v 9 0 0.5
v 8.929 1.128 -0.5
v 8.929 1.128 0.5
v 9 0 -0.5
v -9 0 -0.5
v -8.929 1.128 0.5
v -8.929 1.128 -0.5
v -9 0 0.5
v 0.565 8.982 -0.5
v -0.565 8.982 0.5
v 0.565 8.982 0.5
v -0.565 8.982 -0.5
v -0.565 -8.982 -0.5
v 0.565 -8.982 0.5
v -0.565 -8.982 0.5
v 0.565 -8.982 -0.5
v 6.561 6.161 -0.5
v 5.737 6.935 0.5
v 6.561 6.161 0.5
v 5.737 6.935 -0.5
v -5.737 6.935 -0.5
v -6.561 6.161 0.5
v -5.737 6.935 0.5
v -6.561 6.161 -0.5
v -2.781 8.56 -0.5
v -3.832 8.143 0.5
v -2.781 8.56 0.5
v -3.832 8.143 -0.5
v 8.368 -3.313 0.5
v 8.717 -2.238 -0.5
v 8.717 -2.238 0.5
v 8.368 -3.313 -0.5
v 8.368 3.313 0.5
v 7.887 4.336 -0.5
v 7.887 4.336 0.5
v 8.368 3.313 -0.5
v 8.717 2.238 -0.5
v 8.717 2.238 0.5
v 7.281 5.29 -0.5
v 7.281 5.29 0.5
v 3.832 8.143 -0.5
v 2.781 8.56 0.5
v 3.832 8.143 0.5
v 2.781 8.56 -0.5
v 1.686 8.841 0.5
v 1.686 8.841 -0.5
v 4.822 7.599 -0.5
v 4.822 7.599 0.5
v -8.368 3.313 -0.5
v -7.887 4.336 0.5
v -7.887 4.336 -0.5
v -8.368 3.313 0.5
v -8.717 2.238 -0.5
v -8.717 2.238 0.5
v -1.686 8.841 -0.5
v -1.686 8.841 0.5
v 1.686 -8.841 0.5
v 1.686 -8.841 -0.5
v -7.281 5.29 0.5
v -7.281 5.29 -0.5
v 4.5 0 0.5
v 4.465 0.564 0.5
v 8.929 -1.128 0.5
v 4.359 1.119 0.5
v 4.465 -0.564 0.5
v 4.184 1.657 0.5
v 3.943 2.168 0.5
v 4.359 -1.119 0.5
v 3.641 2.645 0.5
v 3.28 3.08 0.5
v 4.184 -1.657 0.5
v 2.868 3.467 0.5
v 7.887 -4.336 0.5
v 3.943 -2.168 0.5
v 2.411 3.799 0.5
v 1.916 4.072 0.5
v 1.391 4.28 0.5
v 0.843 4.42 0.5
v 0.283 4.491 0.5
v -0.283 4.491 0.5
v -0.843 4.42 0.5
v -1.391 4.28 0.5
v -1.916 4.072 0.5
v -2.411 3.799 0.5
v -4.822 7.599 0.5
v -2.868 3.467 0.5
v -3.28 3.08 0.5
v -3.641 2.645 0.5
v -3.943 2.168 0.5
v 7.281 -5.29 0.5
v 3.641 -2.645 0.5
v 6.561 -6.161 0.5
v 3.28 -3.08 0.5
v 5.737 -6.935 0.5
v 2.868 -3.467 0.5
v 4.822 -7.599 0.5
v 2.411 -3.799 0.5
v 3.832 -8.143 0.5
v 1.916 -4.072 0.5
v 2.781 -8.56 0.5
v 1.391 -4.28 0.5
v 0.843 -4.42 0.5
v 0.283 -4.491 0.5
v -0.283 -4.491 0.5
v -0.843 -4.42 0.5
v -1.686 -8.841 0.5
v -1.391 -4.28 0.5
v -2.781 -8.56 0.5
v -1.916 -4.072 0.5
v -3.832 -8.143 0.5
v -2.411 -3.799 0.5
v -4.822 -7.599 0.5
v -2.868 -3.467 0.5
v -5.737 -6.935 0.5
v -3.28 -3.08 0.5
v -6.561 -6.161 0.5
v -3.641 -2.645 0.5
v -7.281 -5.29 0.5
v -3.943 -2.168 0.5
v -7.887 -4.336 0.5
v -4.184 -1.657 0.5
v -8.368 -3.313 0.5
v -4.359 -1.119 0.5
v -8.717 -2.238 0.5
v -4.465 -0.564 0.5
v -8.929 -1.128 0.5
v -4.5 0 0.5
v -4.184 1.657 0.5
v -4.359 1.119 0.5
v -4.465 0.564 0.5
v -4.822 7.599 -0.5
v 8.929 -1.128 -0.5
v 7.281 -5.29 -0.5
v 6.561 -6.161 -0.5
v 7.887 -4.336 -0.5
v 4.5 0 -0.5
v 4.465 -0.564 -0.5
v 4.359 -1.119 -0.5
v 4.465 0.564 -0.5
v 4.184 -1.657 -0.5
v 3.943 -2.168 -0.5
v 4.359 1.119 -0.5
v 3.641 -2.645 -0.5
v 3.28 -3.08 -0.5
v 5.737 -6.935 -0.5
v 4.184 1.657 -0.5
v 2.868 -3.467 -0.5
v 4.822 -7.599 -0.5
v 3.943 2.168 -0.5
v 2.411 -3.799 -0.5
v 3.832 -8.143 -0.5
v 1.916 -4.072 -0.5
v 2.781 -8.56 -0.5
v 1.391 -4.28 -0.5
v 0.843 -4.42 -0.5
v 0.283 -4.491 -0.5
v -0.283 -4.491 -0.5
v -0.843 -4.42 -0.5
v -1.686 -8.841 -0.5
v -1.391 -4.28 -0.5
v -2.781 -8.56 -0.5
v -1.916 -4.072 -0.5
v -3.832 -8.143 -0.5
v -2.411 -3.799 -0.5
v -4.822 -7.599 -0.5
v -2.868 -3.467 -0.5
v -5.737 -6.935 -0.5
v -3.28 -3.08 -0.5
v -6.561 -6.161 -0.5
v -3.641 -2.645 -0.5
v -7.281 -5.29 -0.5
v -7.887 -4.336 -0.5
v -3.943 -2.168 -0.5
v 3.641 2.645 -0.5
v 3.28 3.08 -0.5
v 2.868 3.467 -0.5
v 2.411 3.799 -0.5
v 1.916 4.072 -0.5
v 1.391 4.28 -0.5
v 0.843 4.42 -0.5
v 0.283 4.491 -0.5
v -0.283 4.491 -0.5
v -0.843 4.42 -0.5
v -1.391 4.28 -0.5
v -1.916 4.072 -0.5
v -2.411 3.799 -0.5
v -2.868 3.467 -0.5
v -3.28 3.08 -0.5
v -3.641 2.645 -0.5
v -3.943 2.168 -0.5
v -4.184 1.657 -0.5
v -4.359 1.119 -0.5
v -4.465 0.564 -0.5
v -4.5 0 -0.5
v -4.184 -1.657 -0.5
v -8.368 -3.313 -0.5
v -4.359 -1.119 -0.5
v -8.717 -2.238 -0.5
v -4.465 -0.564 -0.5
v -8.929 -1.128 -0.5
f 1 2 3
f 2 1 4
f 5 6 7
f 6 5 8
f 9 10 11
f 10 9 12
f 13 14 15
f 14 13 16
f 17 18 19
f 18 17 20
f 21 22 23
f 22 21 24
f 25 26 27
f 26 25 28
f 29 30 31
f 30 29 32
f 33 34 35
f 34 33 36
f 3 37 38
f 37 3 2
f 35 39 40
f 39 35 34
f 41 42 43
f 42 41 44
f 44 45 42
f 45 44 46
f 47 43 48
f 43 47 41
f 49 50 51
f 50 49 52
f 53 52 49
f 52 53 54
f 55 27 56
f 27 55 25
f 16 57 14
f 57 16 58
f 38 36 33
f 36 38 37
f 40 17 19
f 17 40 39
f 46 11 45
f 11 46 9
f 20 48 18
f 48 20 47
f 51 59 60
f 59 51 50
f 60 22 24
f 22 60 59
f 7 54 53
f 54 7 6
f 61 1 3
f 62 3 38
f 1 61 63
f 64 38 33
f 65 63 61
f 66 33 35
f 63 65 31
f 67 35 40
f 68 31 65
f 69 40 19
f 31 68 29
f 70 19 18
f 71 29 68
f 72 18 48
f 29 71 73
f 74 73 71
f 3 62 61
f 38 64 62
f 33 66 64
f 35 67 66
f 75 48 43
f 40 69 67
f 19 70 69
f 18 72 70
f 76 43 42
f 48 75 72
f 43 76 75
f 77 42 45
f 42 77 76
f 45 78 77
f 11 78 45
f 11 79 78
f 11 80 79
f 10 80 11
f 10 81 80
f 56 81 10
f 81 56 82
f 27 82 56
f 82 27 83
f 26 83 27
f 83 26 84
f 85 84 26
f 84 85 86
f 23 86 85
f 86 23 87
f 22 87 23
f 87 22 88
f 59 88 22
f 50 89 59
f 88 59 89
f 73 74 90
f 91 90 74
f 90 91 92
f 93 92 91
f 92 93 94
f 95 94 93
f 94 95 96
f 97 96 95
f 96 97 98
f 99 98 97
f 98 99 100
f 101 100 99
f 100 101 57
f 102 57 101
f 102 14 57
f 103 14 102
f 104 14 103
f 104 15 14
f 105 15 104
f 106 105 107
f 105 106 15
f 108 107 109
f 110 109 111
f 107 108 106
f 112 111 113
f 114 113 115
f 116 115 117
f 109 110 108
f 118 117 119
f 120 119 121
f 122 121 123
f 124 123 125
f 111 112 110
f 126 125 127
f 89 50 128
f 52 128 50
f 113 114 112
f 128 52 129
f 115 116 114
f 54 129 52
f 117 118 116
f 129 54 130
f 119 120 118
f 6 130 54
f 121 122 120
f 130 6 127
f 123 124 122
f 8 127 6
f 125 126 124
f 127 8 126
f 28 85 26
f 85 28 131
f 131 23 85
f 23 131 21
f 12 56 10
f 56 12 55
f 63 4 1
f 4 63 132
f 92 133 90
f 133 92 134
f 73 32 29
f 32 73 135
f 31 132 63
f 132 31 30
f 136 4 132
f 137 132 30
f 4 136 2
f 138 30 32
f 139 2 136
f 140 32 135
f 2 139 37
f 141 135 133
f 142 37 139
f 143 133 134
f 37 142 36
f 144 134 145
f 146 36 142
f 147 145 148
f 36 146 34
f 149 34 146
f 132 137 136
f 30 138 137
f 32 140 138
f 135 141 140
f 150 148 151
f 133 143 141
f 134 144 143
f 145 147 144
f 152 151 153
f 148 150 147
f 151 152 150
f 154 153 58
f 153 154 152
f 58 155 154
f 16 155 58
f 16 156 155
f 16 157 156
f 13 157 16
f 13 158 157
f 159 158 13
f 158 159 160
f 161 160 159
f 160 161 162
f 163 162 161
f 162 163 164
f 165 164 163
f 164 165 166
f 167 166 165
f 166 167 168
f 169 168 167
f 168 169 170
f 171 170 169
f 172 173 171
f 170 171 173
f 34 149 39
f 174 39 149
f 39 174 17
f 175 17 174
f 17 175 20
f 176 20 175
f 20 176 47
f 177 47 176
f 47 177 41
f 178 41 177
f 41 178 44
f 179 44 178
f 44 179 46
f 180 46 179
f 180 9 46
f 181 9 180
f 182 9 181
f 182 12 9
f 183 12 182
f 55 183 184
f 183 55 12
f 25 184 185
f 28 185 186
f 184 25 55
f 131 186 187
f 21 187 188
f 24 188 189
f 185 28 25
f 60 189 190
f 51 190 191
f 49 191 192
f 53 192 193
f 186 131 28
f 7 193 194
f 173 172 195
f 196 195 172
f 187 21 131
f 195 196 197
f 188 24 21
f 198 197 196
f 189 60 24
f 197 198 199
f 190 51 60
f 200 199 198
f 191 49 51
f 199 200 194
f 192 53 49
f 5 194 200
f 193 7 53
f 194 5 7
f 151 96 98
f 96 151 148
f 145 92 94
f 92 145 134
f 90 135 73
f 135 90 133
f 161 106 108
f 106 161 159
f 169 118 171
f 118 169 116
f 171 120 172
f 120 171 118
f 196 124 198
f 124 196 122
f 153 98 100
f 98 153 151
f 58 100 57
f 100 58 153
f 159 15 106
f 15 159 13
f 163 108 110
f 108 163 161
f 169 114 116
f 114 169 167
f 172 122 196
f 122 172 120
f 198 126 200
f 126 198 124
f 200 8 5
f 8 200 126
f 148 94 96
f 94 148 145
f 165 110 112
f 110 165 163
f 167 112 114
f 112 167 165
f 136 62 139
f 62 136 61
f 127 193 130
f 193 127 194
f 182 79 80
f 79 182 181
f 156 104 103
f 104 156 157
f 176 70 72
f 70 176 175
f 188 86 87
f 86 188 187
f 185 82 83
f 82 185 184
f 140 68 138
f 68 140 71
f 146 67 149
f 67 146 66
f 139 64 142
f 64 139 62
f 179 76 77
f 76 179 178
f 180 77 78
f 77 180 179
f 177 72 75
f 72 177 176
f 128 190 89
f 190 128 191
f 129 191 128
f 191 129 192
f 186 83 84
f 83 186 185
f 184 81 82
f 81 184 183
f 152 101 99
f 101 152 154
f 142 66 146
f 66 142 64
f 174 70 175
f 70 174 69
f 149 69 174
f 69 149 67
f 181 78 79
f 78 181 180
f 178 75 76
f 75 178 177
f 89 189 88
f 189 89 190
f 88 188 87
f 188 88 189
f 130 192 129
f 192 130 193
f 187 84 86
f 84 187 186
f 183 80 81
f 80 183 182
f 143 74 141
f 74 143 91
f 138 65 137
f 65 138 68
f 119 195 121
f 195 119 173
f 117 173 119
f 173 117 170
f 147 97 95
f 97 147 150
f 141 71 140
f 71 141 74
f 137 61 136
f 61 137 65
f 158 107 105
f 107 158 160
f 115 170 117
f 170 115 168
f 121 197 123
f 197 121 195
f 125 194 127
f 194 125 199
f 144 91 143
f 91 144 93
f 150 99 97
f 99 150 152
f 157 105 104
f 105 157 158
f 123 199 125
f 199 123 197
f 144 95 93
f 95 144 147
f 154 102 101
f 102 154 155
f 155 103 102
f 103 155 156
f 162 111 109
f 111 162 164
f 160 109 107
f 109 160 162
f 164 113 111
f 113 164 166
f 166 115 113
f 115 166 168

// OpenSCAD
$fn = 50;


difference() {
	union() {
		translate(v = [0, 0, -0.5000000000]) {
			cylinder(h = 1, r = 9.0000000000);
		}
	}
	union() {
		translate(v = [0, 0, -100.0000000000]) {
			cylinder(h = 200, r = 4.5000000000);
		}
	}
}
